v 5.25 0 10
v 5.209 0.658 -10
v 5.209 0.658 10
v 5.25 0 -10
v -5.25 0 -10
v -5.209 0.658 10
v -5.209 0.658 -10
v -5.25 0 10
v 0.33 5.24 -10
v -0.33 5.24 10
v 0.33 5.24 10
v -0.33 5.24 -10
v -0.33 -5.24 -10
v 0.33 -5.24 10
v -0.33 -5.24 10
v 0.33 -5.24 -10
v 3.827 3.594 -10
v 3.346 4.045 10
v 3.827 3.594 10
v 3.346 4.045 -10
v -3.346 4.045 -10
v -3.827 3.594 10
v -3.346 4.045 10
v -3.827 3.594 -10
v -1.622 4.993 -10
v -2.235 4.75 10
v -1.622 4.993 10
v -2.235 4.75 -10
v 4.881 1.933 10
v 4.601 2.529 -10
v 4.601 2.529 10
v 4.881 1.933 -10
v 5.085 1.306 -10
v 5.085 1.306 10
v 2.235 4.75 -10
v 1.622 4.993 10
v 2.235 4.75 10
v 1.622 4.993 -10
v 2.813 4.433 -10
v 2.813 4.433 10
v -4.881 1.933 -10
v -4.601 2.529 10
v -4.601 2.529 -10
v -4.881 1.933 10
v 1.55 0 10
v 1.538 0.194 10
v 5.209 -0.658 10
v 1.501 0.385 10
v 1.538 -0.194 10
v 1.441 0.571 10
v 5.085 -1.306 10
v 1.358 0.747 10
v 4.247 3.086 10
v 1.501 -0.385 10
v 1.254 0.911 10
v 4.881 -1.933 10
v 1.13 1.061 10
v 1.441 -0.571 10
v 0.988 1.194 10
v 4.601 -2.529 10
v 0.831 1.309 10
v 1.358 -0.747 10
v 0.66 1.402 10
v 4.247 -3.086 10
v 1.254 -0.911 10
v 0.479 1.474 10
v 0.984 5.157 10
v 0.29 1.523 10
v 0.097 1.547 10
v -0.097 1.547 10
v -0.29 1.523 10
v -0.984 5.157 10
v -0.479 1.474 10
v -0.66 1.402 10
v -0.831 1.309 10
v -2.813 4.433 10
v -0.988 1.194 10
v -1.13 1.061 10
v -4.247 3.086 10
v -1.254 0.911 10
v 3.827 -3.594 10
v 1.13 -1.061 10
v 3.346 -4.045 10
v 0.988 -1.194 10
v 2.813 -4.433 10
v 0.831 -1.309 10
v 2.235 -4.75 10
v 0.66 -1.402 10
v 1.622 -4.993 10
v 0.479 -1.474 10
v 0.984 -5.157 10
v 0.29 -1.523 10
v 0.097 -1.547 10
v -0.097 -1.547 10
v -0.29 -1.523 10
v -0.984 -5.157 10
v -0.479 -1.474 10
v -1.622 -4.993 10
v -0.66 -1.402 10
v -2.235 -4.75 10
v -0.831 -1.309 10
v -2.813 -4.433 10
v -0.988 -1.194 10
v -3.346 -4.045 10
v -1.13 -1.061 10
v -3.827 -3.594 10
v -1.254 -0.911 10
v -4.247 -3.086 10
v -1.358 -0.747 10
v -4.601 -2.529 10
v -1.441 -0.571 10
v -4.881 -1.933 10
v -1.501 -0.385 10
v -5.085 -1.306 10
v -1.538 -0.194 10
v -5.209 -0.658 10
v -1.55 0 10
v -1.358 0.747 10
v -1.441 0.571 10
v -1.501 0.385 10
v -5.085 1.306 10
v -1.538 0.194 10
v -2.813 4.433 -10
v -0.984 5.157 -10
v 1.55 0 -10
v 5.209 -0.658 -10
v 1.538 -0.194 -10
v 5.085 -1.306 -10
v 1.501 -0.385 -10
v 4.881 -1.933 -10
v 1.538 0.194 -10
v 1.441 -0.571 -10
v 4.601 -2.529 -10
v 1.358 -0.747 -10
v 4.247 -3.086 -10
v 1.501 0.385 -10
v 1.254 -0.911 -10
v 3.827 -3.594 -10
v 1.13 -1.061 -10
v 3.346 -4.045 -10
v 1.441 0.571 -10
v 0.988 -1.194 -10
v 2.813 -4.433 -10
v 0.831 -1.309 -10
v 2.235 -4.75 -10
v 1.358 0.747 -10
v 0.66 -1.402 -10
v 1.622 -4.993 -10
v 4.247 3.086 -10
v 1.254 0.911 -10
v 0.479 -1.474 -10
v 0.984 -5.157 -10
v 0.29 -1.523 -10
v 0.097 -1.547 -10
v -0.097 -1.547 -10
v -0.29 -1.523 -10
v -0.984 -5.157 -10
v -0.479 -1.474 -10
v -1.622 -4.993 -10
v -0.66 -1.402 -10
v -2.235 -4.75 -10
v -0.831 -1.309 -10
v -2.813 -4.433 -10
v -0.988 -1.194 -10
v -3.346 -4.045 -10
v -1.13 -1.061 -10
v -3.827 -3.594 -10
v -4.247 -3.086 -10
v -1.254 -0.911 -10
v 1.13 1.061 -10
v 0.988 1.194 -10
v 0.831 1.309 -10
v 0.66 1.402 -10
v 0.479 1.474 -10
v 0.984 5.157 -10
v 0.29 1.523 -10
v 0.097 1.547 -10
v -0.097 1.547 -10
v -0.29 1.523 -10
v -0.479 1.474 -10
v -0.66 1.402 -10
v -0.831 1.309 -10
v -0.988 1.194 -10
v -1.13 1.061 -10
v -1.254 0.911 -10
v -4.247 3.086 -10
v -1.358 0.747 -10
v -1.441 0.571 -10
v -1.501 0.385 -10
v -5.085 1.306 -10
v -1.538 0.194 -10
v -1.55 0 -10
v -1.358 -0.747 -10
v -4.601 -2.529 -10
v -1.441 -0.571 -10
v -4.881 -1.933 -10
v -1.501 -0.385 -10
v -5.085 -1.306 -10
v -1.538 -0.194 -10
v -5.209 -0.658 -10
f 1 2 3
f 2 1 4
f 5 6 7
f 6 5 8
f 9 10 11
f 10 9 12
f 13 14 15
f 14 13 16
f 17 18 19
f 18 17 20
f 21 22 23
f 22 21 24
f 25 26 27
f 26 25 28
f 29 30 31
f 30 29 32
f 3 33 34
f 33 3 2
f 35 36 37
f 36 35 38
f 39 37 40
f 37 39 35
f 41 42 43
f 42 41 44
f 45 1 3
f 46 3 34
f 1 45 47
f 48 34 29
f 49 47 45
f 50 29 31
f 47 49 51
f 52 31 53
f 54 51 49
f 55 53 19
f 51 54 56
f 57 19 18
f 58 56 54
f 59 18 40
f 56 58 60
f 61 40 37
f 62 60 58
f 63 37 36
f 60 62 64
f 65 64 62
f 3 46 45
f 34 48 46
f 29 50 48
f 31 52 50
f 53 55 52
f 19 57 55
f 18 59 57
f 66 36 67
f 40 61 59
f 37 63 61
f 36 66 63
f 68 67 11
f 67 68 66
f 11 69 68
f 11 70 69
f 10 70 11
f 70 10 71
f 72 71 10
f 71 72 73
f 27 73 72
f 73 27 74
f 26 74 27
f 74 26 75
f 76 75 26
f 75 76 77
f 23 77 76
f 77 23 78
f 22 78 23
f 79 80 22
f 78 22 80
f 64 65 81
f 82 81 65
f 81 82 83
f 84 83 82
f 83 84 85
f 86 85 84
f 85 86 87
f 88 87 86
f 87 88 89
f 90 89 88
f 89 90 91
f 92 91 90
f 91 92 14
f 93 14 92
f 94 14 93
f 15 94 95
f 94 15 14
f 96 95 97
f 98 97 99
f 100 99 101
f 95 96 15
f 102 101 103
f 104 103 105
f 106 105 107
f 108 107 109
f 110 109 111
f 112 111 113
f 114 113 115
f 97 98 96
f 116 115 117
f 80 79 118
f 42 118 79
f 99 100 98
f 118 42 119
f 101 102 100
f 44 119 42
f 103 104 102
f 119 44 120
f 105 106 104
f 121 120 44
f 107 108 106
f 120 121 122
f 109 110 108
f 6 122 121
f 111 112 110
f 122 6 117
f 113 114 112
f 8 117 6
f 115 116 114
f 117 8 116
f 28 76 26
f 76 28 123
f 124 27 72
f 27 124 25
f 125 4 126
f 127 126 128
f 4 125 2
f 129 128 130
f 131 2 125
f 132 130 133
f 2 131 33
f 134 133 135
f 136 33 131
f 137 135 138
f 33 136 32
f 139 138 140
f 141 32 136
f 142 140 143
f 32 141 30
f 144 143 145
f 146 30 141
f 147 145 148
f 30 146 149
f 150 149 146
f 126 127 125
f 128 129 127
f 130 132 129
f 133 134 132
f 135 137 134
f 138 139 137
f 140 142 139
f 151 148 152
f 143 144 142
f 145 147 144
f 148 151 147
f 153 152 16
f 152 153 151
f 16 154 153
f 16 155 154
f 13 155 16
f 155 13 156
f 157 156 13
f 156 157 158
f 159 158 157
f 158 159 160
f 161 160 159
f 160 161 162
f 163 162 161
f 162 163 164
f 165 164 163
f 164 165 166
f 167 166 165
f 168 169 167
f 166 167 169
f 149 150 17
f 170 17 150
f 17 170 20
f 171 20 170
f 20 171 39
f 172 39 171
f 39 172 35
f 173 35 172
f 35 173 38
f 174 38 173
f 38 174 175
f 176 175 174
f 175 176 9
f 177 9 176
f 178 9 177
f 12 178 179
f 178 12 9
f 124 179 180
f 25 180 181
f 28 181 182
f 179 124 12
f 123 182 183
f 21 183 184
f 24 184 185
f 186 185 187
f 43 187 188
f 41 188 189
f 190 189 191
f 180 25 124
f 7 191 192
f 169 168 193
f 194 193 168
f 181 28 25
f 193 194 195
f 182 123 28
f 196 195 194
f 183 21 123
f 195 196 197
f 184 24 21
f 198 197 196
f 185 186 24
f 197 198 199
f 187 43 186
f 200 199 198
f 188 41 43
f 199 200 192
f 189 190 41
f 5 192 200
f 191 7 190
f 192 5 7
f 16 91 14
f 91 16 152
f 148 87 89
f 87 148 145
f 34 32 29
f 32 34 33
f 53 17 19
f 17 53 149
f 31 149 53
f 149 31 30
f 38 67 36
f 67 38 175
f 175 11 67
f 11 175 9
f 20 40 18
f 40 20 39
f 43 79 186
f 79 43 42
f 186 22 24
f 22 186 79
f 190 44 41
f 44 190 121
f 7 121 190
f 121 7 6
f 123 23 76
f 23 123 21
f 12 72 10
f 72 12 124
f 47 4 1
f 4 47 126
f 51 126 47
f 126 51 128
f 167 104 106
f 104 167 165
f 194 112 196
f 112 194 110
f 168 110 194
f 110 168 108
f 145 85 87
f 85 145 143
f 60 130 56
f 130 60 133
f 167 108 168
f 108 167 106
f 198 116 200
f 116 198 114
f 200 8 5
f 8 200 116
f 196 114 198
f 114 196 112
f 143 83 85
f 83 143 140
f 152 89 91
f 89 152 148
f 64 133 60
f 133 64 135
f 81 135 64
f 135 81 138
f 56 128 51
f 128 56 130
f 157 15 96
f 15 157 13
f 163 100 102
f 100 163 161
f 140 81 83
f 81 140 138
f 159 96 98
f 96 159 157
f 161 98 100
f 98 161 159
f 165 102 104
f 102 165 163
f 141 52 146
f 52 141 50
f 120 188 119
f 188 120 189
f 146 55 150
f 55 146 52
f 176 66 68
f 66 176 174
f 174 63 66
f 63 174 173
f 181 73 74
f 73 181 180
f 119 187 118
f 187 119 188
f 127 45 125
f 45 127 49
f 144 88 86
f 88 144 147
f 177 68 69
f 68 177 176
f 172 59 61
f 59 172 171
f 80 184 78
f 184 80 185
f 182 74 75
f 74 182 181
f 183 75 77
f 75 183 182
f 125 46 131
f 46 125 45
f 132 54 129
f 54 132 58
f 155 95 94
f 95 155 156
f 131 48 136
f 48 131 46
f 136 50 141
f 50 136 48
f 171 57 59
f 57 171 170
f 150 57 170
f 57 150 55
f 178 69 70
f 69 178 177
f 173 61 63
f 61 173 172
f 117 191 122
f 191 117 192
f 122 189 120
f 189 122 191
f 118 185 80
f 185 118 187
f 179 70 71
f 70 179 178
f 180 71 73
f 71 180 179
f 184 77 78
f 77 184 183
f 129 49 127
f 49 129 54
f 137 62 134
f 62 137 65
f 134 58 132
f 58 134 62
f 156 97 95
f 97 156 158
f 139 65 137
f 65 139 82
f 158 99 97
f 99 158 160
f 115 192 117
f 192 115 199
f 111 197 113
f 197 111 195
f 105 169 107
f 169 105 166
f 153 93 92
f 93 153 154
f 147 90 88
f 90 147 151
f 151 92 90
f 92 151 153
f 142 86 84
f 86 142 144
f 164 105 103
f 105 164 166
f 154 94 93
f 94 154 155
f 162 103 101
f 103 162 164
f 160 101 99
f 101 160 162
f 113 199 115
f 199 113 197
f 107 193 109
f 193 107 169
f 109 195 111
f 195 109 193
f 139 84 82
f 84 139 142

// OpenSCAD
$fn = 50;


difference() {
	union() {
		translate(v = [0, 0, -10.0000000000]) {
			cylinder(h = 20, r = 5.2500000000);
		}
	}
	union() {
		translate(v = [0, 0, -100.0000000000]) {
			cylinder(h = 200, r = 1.5500000000);
		}
	}
}
